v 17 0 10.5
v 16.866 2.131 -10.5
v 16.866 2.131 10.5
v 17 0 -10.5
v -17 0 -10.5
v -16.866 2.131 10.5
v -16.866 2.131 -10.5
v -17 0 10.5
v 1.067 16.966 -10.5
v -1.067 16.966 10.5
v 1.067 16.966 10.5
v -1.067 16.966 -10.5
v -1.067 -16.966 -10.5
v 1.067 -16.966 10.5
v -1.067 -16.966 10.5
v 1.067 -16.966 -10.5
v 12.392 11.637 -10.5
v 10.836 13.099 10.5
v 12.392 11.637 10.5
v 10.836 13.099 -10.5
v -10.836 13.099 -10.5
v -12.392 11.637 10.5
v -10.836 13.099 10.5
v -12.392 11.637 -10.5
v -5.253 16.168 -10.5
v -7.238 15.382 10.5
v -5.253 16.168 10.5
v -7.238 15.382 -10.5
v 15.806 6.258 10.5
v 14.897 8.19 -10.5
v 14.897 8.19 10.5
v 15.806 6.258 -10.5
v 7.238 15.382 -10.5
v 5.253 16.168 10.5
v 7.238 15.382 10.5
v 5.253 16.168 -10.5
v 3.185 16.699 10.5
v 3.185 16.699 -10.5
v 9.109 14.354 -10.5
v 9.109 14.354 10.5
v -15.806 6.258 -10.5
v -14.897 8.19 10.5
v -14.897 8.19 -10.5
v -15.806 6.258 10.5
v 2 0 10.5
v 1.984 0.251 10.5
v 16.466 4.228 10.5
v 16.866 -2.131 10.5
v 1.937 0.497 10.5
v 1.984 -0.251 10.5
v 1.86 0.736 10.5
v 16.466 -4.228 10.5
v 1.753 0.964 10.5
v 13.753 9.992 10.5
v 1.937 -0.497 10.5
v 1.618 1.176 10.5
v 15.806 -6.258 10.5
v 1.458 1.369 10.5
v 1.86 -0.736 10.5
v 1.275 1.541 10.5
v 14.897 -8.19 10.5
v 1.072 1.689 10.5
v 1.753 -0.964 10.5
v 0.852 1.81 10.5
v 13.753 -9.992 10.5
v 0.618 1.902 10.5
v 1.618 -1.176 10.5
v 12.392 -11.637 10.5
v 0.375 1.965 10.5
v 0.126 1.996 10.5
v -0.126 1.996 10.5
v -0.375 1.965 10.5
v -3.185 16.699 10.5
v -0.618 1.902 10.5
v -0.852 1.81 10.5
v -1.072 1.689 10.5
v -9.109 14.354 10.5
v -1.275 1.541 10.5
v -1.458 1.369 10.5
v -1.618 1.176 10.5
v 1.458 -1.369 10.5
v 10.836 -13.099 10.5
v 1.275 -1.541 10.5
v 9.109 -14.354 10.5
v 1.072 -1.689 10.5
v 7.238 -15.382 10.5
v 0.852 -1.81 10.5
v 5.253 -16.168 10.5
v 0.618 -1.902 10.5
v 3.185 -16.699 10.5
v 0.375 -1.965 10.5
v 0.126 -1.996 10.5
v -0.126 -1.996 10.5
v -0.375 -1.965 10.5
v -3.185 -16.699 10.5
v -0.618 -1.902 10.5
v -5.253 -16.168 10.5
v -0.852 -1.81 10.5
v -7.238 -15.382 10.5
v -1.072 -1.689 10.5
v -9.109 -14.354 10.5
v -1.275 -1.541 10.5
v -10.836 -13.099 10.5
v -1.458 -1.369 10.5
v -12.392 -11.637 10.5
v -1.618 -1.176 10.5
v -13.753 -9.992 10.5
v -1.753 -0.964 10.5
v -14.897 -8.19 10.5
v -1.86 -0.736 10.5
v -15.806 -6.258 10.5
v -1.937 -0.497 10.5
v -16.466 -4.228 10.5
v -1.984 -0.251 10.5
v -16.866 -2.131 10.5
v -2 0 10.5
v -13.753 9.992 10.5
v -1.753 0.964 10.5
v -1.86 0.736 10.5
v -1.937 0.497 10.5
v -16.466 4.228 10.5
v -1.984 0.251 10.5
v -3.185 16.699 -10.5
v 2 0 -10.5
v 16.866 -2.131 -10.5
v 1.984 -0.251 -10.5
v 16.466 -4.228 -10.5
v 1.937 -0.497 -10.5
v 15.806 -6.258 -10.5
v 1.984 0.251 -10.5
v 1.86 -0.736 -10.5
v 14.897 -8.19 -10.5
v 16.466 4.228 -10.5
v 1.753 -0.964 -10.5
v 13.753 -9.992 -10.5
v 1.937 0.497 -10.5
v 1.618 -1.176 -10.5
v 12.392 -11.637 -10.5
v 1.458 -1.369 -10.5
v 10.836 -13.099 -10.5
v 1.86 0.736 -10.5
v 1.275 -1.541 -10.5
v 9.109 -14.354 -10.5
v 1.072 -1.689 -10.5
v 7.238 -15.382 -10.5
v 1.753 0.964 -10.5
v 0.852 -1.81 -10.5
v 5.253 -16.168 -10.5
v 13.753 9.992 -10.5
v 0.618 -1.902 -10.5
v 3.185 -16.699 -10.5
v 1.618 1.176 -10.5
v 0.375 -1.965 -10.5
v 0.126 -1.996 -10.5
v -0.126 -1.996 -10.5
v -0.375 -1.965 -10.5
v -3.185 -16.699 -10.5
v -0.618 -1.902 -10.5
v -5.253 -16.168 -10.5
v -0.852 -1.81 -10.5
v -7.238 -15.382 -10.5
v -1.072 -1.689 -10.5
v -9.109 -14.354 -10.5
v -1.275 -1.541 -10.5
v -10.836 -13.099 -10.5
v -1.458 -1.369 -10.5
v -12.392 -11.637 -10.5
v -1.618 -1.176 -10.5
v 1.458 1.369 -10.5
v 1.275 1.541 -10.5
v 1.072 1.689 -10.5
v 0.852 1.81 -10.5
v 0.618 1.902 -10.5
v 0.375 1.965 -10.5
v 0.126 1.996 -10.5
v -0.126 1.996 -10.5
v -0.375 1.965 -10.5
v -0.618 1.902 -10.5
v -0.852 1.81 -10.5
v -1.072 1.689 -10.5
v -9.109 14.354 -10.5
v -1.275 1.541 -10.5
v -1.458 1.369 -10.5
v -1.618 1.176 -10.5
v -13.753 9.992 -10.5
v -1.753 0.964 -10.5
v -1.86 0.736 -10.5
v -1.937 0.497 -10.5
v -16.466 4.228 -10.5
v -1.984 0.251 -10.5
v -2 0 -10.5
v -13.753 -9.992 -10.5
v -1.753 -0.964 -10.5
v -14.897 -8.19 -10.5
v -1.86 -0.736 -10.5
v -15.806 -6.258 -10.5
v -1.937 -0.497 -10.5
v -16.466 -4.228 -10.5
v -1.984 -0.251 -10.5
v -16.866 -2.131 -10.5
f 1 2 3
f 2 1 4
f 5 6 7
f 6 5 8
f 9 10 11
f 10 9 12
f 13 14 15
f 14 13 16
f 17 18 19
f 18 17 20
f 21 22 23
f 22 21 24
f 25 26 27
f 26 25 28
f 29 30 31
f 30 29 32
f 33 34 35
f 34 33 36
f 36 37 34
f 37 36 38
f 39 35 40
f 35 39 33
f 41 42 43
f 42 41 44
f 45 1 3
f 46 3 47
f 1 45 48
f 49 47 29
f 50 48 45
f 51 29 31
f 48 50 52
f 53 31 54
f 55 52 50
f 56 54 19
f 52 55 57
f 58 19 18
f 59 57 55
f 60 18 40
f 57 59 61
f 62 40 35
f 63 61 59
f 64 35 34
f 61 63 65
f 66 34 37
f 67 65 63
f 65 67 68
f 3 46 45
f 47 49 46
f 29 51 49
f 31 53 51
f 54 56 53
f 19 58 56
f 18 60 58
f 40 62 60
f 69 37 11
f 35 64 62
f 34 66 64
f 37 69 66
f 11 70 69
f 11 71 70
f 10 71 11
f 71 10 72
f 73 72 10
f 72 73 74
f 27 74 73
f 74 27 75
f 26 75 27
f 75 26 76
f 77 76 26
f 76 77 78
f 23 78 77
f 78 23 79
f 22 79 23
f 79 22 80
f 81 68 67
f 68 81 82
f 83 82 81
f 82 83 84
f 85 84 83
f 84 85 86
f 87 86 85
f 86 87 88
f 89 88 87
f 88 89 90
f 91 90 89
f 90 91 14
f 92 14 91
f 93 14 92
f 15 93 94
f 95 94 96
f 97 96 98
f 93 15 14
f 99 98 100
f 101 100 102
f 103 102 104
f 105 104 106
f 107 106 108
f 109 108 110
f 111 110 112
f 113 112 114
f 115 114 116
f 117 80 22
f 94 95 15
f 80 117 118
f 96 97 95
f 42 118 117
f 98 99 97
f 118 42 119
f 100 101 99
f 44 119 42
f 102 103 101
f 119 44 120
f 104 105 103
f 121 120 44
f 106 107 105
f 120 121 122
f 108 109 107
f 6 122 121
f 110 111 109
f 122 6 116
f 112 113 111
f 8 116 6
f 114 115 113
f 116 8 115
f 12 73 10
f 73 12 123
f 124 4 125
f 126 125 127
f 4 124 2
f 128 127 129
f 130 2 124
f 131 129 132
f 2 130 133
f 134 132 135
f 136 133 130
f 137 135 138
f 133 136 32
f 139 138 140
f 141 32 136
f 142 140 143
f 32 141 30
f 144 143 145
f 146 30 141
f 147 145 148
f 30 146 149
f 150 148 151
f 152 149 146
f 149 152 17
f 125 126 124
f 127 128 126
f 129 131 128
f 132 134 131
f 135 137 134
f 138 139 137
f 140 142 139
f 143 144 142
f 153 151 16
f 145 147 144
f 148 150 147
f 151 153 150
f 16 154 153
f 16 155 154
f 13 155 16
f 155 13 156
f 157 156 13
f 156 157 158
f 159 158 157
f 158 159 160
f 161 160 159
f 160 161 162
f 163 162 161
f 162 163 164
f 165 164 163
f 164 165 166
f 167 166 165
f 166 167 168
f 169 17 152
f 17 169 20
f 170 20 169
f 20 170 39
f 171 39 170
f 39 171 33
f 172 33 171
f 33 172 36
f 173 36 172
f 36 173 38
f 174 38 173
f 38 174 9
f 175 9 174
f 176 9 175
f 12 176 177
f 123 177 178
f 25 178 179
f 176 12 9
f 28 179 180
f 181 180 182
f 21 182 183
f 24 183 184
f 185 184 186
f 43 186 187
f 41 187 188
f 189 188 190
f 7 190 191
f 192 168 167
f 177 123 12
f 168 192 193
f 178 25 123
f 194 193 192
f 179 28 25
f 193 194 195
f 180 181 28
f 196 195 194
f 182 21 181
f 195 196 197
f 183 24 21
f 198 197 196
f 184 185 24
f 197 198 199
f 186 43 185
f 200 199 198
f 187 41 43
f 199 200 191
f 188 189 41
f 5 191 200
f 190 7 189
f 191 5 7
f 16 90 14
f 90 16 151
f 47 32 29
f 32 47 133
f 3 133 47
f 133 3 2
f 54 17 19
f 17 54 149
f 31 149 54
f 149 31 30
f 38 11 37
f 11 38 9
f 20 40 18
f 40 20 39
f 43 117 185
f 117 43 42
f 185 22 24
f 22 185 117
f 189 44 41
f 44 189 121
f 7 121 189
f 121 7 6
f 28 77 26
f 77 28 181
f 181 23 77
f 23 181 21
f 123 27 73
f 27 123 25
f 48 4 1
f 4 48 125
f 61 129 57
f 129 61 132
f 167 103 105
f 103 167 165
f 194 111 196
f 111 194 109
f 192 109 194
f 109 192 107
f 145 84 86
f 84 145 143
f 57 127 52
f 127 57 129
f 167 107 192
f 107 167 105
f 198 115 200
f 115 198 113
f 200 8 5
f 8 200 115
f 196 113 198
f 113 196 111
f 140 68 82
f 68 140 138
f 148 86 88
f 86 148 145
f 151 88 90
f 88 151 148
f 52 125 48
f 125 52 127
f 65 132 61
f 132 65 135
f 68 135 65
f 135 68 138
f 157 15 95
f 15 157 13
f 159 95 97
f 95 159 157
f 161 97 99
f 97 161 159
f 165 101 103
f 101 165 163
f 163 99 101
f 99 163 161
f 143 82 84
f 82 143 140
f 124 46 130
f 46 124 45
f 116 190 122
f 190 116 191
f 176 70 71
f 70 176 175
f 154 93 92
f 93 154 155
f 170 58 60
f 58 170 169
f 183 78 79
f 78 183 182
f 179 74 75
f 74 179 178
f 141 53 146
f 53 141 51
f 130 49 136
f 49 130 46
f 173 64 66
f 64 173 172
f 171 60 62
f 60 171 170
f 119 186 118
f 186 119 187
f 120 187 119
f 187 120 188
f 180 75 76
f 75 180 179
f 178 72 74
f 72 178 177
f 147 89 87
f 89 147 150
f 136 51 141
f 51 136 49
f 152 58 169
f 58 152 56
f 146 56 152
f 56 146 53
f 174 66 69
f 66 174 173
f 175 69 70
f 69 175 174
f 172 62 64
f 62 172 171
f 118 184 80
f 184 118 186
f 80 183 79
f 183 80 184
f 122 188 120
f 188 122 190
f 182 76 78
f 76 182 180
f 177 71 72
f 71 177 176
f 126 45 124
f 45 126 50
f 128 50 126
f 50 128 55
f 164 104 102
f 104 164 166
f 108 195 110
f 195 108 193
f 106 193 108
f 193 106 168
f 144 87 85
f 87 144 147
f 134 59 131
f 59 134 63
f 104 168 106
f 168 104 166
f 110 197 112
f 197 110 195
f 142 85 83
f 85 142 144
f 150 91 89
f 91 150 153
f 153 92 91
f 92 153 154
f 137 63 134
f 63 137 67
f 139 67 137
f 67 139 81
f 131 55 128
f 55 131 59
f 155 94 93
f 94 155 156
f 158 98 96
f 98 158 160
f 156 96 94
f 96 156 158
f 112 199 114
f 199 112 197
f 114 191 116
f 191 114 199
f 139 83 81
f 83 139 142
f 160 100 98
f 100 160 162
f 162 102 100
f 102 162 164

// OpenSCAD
$fn = 50;


difference() {
	union() {
		translate(v = [0, 0, -10.5000000000]) {
			cylinder(h = 21, r = 17.0000000000);
		}
	}
	union() {
		translate(v = [0, 0, -100.0000000000]) {
			cylinder(h = 200, r = 2.0000000000);
		}
	}
}
